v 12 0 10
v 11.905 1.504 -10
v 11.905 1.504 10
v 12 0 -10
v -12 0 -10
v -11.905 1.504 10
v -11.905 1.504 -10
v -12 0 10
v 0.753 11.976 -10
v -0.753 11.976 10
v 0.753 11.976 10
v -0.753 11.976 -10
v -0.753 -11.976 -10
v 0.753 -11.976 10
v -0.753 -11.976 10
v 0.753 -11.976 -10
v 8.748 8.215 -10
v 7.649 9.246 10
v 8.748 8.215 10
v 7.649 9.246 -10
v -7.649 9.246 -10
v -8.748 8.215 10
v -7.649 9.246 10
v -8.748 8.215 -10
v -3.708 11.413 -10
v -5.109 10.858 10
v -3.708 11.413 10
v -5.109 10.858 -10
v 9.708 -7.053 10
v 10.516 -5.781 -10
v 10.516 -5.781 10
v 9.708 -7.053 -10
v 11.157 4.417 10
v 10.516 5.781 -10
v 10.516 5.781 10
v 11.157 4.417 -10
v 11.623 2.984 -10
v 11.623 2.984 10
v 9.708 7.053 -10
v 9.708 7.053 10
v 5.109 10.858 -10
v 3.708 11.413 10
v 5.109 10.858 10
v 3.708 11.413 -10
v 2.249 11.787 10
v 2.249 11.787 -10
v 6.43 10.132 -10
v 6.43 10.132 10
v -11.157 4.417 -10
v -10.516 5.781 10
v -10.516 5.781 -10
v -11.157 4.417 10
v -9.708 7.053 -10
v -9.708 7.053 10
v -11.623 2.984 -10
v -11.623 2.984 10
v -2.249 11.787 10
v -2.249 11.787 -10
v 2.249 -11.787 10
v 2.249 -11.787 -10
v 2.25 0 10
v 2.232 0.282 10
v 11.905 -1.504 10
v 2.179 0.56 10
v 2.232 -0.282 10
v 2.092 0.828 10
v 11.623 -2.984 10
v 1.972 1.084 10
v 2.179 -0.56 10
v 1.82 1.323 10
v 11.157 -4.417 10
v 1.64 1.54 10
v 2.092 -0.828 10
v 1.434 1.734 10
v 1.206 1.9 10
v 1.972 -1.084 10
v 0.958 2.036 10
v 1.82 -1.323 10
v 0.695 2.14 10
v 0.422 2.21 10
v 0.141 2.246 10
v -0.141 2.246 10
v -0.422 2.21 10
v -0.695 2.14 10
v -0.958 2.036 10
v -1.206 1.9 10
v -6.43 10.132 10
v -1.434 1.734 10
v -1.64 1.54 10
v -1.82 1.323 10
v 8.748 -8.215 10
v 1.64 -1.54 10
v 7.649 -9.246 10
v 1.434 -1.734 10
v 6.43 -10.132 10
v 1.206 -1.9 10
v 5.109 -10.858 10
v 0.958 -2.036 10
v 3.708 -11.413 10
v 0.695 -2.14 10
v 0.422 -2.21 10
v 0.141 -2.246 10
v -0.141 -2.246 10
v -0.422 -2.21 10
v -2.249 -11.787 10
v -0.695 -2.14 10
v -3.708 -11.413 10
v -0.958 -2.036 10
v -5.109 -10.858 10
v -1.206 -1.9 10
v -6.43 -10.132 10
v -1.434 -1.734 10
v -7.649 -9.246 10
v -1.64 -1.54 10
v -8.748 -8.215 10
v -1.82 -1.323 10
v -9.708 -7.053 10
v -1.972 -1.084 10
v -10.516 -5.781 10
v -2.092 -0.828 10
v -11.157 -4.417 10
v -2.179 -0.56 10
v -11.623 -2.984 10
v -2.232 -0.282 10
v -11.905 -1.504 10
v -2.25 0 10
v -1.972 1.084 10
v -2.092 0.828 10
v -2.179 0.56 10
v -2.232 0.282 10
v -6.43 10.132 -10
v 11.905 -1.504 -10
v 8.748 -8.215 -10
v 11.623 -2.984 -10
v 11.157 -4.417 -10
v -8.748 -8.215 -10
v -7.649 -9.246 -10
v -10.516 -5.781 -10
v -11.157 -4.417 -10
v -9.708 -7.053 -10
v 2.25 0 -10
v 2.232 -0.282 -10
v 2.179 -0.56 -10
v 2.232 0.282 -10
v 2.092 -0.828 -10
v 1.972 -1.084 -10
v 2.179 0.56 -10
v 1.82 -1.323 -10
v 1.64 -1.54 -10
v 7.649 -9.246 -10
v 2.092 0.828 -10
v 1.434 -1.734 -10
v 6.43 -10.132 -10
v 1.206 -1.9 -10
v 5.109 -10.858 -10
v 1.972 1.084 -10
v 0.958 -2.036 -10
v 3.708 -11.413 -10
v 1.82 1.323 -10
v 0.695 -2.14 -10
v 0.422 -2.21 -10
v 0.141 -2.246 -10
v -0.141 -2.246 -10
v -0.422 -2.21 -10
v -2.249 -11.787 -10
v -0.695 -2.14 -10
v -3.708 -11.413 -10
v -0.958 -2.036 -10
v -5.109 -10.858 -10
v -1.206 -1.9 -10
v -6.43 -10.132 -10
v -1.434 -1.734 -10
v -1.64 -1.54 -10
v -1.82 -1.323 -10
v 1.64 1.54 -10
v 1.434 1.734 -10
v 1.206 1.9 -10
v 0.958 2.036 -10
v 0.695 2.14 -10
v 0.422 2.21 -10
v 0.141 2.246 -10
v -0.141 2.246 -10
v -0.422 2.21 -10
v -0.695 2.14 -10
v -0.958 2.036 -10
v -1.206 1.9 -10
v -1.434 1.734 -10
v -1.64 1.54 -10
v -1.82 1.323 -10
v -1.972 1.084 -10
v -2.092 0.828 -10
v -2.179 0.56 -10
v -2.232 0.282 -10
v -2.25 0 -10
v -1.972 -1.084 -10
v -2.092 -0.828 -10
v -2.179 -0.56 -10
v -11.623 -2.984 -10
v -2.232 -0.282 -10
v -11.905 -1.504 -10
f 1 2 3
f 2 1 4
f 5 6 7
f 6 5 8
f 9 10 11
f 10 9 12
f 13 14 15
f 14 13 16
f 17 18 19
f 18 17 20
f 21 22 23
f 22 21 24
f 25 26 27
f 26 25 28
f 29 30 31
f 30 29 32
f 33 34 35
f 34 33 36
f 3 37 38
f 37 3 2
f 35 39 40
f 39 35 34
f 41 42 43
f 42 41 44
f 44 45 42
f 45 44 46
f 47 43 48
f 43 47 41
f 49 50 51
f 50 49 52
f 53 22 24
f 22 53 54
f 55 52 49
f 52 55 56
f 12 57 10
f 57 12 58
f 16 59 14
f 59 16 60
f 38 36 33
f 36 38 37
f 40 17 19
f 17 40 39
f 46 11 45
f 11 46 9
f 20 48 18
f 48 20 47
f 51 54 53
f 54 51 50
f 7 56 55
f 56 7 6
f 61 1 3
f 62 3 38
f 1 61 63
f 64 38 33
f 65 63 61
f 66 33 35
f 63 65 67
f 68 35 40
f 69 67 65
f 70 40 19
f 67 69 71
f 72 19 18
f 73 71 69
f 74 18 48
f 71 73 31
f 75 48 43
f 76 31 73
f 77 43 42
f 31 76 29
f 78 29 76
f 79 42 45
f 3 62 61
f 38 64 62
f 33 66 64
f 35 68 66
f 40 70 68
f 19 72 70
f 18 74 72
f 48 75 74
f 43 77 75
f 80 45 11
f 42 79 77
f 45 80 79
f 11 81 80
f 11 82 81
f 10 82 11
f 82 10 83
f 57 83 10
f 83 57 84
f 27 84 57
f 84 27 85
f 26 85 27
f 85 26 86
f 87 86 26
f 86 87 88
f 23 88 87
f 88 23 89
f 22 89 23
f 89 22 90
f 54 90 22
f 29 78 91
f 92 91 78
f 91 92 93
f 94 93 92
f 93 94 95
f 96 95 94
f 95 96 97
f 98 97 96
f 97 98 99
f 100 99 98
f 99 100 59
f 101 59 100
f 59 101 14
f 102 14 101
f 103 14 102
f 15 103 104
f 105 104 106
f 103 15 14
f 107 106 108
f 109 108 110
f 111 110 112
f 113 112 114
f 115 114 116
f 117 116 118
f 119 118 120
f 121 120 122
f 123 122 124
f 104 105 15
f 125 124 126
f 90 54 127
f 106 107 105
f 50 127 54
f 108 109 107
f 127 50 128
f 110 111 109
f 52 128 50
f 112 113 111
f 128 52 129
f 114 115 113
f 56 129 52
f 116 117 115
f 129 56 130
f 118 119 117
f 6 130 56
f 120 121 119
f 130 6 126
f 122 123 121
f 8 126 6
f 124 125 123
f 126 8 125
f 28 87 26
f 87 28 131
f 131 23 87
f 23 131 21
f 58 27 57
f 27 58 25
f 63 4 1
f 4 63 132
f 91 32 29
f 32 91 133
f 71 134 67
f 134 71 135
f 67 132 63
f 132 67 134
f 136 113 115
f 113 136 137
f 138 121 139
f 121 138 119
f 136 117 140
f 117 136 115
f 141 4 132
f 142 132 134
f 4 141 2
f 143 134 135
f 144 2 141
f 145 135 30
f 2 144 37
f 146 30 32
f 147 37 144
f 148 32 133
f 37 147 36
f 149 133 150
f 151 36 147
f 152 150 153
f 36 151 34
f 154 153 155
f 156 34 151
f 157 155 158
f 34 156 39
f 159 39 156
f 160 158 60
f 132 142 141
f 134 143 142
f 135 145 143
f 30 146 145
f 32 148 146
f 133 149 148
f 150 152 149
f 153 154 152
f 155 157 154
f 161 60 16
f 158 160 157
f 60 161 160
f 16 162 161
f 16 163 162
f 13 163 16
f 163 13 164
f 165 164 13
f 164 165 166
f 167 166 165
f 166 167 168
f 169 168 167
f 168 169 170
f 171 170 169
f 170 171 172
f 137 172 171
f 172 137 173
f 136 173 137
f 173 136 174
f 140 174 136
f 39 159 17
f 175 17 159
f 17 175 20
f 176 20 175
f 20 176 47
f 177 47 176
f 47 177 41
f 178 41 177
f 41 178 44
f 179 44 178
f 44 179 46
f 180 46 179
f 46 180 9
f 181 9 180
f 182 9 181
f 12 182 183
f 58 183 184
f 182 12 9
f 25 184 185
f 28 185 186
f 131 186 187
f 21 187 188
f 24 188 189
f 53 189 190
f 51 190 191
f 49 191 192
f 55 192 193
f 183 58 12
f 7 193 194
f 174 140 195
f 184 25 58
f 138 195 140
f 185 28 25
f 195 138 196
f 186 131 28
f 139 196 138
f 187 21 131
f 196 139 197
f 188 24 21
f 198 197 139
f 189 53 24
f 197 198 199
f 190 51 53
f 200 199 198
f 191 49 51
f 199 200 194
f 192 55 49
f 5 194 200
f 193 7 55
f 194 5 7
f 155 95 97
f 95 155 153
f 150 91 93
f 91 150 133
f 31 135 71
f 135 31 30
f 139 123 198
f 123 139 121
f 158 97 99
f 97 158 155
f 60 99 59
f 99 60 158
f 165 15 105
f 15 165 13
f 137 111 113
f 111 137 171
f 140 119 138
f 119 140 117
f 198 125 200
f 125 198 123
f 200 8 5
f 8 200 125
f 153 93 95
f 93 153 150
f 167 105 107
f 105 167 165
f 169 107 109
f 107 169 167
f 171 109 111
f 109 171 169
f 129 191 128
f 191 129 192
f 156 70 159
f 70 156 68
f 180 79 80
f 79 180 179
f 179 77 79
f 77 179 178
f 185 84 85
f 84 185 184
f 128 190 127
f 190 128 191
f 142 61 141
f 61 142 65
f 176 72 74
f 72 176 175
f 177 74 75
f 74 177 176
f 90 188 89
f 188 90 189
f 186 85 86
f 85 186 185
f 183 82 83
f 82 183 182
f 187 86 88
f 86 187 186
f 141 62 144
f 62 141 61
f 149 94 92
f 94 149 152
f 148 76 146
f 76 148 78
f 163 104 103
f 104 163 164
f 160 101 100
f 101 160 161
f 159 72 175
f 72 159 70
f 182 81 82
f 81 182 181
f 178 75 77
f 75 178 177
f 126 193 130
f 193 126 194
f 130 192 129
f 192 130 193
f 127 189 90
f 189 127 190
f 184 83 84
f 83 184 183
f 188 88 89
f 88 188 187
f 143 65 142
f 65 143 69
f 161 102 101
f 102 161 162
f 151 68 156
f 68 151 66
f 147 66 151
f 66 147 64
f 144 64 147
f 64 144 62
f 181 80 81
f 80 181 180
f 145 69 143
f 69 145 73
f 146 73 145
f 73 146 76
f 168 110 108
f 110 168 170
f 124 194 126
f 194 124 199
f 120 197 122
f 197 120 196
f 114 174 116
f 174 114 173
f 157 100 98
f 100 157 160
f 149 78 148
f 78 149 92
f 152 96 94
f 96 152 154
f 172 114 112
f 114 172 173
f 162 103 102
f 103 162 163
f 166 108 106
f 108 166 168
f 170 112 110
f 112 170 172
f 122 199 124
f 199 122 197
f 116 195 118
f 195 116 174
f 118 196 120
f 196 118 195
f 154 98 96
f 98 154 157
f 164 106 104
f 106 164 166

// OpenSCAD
$fn = 50;


difference() {
	union() {
		translate(v = [0, 0, -10.0000000000]) {
			cylinder(h = 20, r = 12.0000000000);
		}
	}
	union() {
		translate(v = [0, 0, -100.0000000000]) {
			cylinder(h = 200, r = 2.2500000000);
		}
	}
}
